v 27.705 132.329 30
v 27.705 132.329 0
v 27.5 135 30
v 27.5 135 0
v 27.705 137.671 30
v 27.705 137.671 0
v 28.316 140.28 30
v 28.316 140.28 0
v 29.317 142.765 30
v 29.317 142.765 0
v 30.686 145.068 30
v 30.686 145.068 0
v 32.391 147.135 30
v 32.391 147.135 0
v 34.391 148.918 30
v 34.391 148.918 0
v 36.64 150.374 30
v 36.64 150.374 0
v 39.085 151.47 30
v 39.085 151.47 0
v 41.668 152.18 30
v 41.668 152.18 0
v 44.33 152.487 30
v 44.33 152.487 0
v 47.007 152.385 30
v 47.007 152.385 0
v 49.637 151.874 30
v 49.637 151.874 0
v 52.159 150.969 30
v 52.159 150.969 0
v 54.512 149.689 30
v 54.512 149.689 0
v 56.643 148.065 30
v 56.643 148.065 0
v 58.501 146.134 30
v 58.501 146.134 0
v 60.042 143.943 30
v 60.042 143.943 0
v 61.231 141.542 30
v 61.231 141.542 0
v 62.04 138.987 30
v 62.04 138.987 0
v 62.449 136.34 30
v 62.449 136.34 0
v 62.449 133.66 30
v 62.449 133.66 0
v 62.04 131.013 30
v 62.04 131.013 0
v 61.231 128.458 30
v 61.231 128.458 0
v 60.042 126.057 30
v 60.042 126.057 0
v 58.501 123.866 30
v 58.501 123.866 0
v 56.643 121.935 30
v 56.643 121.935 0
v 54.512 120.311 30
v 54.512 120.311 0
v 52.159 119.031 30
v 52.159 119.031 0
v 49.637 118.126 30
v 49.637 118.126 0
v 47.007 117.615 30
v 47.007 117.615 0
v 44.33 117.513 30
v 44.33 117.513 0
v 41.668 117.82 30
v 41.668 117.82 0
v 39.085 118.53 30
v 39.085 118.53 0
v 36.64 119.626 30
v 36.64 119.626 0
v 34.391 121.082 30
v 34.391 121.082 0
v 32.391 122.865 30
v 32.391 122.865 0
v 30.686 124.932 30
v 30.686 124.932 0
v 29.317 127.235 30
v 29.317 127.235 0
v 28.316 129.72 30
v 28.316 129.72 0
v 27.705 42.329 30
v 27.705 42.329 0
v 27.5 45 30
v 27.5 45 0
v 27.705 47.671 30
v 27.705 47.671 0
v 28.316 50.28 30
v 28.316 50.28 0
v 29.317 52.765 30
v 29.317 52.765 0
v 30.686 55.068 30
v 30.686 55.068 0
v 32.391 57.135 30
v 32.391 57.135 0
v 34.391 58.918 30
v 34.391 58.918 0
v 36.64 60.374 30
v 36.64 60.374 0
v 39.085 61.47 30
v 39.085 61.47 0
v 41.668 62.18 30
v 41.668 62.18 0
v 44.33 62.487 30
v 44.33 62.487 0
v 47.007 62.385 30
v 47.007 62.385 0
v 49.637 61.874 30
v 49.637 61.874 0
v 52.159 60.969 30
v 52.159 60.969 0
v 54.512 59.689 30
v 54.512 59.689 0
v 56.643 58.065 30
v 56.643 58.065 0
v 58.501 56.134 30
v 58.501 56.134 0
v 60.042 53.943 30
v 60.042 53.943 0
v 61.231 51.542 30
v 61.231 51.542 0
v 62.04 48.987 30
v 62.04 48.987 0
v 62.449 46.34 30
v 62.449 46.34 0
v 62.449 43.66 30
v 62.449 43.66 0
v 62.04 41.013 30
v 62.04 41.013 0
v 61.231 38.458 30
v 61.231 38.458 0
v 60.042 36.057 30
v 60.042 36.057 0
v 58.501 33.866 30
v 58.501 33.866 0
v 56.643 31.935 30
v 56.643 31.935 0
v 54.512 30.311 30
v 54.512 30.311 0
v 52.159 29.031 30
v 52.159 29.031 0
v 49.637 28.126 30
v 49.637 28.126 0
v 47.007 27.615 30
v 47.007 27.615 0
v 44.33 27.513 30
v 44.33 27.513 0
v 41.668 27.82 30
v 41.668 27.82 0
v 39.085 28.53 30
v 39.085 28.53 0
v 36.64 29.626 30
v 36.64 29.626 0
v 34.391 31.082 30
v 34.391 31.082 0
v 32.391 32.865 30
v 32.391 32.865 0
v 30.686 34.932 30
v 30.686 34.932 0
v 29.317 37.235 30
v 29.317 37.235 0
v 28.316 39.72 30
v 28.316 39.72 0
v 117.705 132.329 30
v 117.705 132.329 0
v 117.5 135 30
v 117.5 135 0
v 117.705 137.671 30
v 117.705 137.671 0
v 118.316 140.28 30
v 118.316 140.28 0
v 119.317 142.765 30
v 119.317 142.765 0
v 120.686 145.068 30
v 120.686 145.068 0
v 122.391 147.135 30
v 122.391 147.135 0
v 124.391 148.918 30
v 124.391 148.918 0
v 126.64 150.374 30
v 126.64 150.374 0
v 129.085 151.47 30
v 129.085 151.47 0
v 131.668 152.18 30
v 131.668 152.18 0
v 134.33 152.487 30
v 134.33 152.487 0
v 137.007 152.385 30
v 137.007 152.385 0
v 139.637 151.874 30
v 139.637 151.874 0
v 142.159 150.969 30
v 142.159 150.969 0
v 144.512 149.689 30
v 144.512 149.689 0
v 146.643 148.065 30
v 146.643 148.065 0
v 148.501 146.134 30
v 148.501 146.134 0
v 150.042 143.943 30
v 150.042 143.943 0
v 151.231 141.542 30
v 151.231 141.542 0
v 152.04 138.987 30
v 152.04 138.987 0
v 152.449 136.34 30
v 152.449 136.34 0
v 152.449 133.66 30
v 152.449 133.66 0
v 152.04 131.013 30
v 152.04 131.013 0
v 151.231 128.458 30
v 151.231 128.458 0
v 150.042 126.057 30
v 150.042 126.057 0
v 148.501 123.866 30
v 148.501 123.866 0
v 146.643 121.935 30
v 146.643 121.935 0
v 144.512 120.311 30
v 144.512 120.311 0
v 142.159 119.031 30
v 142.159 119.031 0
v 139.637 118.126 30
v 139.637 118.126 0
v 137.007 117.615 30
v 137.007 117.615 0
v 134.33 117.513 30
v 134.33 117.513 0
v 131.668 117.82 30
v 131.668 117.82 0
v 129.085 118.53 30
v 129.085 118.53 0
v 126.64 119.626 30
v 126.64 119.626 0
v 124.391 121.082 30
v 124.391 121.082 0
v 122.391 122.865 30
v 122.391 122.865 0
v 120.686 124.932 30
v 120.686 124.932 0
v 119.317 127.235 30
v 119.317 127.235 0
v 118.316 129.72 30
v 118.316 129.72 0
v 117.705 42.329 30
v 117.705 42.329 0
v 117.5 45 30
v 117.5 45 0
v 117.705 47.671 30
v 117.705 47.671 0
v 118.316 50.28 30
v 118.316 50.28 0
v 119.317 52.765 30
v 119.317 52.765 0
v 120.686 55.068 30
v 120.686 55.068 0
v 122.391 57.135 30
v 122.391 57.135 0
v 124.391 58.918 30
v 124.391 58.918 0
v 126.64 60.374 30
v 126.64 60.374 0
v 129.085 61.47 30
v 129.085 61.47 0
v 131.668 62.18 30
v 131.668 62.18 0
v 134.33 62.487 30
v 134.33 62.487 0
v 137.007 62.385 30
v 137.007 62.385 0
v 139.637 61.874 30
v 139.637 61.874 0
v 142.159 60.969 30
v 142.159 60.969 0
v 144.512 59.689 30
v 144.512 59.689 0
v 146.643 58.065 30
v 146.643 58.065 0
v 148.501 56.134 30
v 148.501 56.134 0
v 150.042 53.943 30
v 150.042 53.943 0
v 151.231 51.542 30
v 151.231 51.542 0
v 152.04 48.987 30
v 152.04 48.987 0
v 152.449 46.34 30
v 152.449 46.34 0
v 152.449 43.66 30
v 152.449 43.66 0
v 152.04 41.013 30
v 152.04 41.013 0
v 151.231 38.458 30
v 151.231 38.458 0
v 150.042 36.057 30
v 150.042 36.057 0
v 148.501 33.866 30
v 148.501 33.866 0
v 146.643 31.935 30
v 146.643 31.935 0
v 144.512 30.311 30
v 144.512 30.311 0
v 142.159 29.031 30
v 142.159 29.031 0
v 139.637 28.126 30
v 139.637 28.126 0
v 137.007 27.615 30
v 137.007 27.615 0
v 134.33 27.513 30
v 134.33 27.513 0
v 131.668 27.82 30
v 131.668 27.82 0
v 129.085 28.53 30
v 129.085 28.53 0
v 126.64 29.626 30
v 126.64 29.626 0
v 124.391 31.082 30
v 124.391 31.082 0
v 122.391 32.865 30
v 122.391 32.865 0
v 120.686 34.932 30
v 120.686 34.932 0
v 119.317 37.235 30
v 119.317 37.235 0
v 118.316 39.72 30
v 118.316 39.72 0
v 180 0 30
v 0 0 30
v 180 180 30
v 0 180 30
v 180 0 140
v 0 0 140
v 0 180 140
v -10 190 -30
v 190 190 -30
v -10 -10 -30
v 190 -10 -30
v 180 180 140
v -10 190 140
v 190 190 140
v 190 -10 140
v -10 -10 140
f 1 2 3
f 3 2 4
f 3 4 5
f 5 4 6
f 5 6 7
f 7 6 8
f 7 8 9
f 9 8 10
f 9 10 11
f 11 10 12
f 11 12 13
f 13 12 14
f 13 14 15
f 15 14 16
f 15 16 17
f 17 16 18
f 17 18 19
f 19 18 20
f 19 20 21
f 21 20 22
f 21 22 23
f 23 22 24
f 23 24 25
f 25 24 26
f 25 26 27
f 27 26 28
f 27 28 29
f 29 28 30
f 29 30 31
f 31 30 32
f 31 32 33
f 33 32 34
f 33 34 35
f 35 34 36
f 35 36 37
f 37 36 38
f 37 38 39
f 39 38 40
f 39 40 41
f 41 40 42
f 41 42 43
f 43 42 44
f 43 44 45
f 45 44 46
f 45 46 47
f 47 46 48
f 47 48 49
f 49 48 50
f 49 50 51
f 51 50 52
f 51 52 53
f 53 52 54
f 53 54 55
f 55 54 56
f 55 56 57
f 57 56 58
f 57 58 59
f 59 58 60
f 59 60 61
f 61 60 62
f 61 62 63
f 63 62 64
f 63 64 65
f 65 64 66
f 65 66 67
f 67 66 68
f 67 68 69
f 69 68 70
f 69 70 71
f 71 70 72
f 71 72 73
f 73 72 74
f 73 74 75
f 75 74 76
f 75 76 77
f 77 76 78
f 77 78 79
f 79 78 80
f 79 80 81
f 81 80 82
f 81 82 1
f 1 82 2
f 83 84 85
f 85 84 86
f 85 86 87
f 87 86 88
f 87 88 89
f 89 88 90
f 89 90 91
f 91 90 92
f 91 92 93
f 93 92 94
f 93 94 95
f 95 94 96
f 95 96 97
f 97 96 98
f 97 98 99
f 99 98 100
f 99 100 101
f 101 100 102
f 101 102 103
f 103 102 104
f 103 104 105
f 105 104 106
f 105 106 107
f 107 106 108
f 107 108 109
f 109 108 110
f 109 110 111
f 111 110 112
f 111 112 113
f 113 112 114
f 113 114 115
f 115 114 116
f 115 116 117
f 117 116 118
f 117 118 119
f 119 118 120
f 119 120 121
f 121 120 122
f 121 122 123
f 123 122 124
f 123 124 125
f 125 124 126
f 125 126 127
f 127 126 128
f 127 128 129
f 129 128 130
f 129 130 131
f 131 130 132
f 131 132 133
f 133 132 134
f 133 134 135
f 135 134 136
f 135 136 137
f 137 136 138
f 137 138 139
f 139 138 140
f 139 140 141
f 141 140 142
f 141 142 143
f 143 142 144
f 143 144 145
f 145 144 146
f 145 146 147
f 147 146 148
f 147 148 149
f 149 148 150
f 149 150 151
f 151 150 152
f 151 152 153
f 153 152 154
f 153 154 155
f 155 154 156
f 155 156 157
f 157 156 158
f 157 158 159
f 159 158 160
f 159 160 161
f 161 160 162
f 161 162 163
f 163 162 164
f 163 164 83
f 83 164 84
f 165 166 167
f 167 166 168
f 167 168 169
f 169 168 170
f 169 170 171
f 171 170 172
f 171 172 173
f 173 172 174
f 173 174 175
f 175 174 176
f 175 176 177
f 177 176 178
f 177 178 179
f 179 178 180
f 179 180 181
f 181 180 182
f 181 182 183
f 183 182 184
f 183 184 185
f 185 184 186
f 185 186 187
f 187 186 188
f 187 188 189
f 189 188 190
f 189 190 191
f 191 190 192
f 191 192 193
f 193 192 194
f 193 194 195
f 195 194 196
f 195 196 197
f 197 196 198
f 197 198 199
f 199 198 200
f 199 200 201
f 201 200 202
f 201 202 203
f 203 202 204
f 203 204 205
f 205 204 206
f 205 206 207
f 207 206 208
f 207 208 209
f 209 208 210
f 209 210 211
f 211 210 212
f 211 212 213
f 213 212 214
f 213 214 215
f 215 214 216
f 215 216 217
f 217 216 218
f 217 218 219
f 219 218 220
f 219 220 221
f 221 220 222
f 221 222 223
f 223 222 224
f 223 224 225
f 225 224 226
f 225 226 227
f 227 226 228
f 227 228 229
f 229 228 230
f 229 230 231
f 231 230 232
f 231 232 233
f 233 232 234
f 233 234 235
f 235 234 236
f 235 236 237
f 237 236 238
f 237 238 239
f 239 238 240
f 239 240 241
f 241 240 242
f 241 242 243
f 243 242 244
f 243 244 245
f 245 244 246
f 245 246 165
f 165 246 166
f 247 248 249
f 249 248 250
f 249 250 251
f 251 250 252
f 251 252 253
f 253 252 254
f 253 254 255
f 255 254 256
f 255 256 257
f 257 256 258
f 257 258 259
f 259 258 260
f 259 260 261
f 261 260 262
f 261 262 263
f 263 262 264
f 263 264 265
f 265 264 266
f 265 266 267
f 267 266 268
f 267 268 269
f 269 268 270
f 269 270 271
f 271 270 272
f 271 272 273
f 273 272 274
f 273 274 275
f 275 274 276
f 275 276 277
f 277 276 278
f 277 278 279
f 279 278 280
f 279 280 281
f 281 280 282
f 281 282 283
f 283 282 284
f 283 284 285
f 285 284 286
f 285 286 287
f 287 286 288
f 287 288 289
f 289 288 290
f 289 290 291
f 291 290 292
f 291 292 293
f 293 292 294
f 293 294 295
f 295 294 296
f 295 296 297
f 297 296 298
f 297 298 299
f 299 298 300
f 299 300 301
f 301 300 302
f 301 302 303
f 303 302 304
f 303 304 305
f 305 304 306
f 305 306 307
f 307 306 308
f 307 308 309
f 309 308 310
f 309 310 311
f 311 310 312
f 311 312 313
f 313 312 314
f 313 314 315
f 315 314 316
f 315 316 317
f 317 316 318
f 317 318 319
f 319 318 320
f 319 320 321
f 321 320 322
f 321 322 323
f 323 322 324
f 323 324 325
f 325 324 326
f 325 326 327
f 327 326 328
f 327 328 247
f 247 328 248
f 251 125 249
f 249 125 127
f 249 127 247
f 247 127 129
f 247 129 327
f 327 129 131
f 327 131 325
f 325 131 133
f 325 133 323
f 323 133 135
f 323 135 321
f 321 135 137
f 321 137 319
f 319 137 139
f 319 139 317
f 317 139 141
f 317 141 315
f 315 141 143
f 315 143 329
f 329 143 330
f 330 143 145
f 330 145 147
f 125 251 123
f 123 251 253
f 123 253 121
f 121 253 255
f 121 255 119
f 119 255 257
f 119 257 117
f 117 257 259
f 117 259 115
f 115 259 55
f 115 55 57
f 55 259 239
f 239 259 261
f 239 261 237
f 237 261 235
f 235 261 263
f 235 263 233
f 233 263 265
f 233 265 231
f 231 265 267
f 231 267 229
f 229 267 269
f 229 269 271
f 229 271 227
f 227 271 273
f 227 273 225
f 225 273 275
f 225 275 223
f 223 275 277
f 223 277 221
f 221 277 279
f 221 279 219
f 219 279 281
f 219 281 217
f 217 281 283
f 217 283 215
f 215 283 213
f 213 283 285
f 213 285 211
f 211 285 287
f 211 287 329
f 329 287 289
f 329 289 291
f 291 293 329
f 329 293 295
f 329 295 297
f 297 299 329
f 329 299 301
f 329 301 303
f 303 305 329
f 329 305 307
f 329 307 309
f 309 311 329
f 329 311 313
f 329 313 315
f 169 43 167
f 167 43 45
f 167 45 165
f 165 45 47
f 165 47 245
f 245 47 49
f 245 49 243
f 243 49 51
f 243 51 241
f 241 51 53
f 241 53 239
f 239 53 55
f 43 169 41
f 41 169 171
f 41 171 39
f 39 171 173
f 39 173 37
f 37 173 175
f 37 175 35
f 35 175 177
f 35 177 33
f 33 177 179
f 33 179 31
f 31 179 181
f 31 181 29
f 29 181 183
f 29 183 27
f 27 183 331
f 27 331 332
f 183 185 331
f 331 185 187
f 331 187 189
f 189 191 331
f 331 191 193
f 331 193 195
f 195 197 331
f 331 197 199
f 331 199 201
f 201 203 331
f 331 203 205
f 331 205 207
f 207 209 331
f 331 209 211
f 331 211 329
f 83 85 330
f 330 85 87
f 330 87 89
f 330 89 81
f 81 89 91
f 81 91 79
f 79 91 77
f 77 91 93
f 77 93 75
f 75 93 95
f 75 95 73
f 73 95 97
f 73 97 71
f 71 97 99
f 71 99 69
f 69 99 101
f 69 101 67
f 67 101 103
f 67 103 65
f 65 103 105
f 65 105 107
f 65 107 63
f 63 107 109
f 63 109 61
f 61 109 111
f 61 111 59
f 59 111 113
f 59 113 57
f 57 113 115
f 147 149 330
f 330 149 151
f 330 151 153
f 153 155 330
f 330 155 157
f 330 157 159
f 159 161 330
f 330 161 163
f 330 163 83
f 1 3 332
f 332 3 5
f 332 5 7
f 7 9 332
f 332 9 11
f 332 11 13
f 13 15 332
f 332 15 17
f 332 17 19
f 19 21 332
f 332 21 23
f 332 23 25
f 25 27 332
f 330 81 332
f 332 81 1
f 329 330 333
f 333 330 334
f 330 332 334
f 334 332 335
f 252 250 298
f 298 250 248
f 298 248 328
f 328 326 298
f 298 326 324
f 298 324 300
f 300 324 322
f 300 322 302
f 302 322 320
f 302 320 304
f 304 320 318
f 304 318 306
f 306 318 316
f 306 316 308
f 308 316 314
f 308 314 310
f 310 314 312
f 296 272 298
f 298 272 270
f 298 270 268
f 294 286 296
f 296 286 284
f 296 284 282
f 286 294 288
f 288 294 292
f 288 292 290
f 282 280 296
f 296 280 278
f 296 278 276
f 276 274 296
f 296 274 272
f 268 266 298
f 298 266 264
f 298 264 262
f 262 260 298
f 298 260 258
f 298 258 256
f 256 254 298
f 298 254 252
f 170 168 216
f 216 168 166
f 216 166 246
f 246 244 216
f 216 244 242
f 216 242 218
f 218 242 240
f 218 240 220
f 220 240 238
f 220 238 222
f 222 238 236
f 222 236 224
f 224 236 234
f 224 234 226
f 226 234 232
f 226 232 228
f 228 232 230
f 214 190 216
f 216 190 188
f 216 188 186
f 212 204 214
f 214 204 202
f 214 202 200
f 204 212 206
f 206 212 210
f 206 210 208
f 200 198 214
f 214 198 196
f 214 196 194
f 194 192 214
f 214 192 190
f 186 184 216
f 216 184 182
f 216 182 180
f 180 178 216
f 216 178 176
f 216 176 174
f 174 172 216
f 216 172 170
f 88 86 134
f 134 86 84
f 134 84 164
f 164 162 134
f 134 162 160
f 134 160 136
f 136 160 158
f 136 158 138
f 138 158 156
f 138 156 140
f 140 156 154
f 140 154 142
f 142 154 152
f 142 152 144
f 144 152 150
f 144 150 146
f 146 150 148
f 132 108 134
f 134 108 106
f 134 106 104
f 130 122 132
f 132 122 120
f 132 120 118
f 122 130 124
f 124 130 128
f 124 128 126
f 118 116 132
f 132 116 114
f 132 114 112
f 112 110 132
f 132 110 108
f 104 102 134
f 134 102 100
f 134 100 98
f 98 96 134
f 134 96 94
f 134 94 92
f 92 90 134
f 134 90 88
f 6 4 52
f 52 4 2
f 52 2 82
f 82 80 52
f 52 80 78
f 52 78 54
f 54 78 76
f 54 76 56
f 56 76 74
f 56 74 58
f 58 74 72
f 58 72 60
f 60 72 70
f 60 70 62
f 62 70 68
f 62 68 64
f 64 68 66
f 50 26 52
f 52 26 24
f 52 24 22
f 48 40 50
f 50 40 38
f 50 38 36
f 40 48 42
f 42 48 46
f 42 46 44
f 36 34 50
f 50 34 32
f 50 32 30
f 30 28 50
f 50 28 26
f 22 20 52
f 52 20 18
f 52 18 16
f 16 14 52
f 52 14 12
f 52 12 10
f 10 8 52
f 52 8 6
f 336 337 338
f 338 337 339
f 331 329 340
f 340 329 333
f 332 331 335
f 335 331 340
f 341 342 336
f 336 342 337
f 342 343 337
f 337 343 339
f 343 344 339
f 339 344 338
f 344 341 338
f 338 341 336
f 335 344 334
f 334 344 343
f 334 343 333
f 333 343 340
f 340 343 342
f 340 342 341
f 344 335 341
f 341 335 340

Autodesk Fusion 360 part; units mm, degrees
sketch "Sketch1" plane through (0, 0, 0) normal (0, 0, 1) x (1, 0, 0)
  line L0 (0, 0) -> (180, 0)
  line L1 (180, 0) -> (180, 180)
  line L2 (180, 180) -> (0, 180)
  line L3 (0, 180) -> (0, 0)
  line L4 (-10, -10) -> (190, -10)
  line L5 (190, -10) -> (190, 190)
  line L6 (190, 190) -> (-10, 190)
  line L7 (-10, 190) -> (-10, -10)
  circle A0 centre (45, 45) radius 17.5
  circle A1 centre (45, 135) radius 17.5
  circle A2 centre (135, 135) radius 17.5
  circle A3 centre (135, 45) radius 17.5
  dimension "d1" = 180
  dimension "d2" = 180
  dimension "d3" = 35
  dimension "d4" = 35
  dimension "d5" = 45
  dimension "d6" = 45
  dimension "d7" = 45
  dimension "d8" = 45
  dimension "d9" = 35
  dimension "d10" = 45
  dimension "d11" = 45
  dimension "d12" = 35
  dimension "d13" = 45
  dimension "d14" = 45
extrude "Extrude1" add sketch "Sketch1" along normal blind 140 contours L4 L5 L6 L7
extrude "Extrude2" add sketch "Sketch1" against normal blind 30 contours L0 L1 L2 L3 | L4 L5 L6 L7 | A0 | A1 | A2 | A3
extrude "Extrude3" add sketch "Sketch1" along normal blind 30 contours L0 L1 L2 L3
